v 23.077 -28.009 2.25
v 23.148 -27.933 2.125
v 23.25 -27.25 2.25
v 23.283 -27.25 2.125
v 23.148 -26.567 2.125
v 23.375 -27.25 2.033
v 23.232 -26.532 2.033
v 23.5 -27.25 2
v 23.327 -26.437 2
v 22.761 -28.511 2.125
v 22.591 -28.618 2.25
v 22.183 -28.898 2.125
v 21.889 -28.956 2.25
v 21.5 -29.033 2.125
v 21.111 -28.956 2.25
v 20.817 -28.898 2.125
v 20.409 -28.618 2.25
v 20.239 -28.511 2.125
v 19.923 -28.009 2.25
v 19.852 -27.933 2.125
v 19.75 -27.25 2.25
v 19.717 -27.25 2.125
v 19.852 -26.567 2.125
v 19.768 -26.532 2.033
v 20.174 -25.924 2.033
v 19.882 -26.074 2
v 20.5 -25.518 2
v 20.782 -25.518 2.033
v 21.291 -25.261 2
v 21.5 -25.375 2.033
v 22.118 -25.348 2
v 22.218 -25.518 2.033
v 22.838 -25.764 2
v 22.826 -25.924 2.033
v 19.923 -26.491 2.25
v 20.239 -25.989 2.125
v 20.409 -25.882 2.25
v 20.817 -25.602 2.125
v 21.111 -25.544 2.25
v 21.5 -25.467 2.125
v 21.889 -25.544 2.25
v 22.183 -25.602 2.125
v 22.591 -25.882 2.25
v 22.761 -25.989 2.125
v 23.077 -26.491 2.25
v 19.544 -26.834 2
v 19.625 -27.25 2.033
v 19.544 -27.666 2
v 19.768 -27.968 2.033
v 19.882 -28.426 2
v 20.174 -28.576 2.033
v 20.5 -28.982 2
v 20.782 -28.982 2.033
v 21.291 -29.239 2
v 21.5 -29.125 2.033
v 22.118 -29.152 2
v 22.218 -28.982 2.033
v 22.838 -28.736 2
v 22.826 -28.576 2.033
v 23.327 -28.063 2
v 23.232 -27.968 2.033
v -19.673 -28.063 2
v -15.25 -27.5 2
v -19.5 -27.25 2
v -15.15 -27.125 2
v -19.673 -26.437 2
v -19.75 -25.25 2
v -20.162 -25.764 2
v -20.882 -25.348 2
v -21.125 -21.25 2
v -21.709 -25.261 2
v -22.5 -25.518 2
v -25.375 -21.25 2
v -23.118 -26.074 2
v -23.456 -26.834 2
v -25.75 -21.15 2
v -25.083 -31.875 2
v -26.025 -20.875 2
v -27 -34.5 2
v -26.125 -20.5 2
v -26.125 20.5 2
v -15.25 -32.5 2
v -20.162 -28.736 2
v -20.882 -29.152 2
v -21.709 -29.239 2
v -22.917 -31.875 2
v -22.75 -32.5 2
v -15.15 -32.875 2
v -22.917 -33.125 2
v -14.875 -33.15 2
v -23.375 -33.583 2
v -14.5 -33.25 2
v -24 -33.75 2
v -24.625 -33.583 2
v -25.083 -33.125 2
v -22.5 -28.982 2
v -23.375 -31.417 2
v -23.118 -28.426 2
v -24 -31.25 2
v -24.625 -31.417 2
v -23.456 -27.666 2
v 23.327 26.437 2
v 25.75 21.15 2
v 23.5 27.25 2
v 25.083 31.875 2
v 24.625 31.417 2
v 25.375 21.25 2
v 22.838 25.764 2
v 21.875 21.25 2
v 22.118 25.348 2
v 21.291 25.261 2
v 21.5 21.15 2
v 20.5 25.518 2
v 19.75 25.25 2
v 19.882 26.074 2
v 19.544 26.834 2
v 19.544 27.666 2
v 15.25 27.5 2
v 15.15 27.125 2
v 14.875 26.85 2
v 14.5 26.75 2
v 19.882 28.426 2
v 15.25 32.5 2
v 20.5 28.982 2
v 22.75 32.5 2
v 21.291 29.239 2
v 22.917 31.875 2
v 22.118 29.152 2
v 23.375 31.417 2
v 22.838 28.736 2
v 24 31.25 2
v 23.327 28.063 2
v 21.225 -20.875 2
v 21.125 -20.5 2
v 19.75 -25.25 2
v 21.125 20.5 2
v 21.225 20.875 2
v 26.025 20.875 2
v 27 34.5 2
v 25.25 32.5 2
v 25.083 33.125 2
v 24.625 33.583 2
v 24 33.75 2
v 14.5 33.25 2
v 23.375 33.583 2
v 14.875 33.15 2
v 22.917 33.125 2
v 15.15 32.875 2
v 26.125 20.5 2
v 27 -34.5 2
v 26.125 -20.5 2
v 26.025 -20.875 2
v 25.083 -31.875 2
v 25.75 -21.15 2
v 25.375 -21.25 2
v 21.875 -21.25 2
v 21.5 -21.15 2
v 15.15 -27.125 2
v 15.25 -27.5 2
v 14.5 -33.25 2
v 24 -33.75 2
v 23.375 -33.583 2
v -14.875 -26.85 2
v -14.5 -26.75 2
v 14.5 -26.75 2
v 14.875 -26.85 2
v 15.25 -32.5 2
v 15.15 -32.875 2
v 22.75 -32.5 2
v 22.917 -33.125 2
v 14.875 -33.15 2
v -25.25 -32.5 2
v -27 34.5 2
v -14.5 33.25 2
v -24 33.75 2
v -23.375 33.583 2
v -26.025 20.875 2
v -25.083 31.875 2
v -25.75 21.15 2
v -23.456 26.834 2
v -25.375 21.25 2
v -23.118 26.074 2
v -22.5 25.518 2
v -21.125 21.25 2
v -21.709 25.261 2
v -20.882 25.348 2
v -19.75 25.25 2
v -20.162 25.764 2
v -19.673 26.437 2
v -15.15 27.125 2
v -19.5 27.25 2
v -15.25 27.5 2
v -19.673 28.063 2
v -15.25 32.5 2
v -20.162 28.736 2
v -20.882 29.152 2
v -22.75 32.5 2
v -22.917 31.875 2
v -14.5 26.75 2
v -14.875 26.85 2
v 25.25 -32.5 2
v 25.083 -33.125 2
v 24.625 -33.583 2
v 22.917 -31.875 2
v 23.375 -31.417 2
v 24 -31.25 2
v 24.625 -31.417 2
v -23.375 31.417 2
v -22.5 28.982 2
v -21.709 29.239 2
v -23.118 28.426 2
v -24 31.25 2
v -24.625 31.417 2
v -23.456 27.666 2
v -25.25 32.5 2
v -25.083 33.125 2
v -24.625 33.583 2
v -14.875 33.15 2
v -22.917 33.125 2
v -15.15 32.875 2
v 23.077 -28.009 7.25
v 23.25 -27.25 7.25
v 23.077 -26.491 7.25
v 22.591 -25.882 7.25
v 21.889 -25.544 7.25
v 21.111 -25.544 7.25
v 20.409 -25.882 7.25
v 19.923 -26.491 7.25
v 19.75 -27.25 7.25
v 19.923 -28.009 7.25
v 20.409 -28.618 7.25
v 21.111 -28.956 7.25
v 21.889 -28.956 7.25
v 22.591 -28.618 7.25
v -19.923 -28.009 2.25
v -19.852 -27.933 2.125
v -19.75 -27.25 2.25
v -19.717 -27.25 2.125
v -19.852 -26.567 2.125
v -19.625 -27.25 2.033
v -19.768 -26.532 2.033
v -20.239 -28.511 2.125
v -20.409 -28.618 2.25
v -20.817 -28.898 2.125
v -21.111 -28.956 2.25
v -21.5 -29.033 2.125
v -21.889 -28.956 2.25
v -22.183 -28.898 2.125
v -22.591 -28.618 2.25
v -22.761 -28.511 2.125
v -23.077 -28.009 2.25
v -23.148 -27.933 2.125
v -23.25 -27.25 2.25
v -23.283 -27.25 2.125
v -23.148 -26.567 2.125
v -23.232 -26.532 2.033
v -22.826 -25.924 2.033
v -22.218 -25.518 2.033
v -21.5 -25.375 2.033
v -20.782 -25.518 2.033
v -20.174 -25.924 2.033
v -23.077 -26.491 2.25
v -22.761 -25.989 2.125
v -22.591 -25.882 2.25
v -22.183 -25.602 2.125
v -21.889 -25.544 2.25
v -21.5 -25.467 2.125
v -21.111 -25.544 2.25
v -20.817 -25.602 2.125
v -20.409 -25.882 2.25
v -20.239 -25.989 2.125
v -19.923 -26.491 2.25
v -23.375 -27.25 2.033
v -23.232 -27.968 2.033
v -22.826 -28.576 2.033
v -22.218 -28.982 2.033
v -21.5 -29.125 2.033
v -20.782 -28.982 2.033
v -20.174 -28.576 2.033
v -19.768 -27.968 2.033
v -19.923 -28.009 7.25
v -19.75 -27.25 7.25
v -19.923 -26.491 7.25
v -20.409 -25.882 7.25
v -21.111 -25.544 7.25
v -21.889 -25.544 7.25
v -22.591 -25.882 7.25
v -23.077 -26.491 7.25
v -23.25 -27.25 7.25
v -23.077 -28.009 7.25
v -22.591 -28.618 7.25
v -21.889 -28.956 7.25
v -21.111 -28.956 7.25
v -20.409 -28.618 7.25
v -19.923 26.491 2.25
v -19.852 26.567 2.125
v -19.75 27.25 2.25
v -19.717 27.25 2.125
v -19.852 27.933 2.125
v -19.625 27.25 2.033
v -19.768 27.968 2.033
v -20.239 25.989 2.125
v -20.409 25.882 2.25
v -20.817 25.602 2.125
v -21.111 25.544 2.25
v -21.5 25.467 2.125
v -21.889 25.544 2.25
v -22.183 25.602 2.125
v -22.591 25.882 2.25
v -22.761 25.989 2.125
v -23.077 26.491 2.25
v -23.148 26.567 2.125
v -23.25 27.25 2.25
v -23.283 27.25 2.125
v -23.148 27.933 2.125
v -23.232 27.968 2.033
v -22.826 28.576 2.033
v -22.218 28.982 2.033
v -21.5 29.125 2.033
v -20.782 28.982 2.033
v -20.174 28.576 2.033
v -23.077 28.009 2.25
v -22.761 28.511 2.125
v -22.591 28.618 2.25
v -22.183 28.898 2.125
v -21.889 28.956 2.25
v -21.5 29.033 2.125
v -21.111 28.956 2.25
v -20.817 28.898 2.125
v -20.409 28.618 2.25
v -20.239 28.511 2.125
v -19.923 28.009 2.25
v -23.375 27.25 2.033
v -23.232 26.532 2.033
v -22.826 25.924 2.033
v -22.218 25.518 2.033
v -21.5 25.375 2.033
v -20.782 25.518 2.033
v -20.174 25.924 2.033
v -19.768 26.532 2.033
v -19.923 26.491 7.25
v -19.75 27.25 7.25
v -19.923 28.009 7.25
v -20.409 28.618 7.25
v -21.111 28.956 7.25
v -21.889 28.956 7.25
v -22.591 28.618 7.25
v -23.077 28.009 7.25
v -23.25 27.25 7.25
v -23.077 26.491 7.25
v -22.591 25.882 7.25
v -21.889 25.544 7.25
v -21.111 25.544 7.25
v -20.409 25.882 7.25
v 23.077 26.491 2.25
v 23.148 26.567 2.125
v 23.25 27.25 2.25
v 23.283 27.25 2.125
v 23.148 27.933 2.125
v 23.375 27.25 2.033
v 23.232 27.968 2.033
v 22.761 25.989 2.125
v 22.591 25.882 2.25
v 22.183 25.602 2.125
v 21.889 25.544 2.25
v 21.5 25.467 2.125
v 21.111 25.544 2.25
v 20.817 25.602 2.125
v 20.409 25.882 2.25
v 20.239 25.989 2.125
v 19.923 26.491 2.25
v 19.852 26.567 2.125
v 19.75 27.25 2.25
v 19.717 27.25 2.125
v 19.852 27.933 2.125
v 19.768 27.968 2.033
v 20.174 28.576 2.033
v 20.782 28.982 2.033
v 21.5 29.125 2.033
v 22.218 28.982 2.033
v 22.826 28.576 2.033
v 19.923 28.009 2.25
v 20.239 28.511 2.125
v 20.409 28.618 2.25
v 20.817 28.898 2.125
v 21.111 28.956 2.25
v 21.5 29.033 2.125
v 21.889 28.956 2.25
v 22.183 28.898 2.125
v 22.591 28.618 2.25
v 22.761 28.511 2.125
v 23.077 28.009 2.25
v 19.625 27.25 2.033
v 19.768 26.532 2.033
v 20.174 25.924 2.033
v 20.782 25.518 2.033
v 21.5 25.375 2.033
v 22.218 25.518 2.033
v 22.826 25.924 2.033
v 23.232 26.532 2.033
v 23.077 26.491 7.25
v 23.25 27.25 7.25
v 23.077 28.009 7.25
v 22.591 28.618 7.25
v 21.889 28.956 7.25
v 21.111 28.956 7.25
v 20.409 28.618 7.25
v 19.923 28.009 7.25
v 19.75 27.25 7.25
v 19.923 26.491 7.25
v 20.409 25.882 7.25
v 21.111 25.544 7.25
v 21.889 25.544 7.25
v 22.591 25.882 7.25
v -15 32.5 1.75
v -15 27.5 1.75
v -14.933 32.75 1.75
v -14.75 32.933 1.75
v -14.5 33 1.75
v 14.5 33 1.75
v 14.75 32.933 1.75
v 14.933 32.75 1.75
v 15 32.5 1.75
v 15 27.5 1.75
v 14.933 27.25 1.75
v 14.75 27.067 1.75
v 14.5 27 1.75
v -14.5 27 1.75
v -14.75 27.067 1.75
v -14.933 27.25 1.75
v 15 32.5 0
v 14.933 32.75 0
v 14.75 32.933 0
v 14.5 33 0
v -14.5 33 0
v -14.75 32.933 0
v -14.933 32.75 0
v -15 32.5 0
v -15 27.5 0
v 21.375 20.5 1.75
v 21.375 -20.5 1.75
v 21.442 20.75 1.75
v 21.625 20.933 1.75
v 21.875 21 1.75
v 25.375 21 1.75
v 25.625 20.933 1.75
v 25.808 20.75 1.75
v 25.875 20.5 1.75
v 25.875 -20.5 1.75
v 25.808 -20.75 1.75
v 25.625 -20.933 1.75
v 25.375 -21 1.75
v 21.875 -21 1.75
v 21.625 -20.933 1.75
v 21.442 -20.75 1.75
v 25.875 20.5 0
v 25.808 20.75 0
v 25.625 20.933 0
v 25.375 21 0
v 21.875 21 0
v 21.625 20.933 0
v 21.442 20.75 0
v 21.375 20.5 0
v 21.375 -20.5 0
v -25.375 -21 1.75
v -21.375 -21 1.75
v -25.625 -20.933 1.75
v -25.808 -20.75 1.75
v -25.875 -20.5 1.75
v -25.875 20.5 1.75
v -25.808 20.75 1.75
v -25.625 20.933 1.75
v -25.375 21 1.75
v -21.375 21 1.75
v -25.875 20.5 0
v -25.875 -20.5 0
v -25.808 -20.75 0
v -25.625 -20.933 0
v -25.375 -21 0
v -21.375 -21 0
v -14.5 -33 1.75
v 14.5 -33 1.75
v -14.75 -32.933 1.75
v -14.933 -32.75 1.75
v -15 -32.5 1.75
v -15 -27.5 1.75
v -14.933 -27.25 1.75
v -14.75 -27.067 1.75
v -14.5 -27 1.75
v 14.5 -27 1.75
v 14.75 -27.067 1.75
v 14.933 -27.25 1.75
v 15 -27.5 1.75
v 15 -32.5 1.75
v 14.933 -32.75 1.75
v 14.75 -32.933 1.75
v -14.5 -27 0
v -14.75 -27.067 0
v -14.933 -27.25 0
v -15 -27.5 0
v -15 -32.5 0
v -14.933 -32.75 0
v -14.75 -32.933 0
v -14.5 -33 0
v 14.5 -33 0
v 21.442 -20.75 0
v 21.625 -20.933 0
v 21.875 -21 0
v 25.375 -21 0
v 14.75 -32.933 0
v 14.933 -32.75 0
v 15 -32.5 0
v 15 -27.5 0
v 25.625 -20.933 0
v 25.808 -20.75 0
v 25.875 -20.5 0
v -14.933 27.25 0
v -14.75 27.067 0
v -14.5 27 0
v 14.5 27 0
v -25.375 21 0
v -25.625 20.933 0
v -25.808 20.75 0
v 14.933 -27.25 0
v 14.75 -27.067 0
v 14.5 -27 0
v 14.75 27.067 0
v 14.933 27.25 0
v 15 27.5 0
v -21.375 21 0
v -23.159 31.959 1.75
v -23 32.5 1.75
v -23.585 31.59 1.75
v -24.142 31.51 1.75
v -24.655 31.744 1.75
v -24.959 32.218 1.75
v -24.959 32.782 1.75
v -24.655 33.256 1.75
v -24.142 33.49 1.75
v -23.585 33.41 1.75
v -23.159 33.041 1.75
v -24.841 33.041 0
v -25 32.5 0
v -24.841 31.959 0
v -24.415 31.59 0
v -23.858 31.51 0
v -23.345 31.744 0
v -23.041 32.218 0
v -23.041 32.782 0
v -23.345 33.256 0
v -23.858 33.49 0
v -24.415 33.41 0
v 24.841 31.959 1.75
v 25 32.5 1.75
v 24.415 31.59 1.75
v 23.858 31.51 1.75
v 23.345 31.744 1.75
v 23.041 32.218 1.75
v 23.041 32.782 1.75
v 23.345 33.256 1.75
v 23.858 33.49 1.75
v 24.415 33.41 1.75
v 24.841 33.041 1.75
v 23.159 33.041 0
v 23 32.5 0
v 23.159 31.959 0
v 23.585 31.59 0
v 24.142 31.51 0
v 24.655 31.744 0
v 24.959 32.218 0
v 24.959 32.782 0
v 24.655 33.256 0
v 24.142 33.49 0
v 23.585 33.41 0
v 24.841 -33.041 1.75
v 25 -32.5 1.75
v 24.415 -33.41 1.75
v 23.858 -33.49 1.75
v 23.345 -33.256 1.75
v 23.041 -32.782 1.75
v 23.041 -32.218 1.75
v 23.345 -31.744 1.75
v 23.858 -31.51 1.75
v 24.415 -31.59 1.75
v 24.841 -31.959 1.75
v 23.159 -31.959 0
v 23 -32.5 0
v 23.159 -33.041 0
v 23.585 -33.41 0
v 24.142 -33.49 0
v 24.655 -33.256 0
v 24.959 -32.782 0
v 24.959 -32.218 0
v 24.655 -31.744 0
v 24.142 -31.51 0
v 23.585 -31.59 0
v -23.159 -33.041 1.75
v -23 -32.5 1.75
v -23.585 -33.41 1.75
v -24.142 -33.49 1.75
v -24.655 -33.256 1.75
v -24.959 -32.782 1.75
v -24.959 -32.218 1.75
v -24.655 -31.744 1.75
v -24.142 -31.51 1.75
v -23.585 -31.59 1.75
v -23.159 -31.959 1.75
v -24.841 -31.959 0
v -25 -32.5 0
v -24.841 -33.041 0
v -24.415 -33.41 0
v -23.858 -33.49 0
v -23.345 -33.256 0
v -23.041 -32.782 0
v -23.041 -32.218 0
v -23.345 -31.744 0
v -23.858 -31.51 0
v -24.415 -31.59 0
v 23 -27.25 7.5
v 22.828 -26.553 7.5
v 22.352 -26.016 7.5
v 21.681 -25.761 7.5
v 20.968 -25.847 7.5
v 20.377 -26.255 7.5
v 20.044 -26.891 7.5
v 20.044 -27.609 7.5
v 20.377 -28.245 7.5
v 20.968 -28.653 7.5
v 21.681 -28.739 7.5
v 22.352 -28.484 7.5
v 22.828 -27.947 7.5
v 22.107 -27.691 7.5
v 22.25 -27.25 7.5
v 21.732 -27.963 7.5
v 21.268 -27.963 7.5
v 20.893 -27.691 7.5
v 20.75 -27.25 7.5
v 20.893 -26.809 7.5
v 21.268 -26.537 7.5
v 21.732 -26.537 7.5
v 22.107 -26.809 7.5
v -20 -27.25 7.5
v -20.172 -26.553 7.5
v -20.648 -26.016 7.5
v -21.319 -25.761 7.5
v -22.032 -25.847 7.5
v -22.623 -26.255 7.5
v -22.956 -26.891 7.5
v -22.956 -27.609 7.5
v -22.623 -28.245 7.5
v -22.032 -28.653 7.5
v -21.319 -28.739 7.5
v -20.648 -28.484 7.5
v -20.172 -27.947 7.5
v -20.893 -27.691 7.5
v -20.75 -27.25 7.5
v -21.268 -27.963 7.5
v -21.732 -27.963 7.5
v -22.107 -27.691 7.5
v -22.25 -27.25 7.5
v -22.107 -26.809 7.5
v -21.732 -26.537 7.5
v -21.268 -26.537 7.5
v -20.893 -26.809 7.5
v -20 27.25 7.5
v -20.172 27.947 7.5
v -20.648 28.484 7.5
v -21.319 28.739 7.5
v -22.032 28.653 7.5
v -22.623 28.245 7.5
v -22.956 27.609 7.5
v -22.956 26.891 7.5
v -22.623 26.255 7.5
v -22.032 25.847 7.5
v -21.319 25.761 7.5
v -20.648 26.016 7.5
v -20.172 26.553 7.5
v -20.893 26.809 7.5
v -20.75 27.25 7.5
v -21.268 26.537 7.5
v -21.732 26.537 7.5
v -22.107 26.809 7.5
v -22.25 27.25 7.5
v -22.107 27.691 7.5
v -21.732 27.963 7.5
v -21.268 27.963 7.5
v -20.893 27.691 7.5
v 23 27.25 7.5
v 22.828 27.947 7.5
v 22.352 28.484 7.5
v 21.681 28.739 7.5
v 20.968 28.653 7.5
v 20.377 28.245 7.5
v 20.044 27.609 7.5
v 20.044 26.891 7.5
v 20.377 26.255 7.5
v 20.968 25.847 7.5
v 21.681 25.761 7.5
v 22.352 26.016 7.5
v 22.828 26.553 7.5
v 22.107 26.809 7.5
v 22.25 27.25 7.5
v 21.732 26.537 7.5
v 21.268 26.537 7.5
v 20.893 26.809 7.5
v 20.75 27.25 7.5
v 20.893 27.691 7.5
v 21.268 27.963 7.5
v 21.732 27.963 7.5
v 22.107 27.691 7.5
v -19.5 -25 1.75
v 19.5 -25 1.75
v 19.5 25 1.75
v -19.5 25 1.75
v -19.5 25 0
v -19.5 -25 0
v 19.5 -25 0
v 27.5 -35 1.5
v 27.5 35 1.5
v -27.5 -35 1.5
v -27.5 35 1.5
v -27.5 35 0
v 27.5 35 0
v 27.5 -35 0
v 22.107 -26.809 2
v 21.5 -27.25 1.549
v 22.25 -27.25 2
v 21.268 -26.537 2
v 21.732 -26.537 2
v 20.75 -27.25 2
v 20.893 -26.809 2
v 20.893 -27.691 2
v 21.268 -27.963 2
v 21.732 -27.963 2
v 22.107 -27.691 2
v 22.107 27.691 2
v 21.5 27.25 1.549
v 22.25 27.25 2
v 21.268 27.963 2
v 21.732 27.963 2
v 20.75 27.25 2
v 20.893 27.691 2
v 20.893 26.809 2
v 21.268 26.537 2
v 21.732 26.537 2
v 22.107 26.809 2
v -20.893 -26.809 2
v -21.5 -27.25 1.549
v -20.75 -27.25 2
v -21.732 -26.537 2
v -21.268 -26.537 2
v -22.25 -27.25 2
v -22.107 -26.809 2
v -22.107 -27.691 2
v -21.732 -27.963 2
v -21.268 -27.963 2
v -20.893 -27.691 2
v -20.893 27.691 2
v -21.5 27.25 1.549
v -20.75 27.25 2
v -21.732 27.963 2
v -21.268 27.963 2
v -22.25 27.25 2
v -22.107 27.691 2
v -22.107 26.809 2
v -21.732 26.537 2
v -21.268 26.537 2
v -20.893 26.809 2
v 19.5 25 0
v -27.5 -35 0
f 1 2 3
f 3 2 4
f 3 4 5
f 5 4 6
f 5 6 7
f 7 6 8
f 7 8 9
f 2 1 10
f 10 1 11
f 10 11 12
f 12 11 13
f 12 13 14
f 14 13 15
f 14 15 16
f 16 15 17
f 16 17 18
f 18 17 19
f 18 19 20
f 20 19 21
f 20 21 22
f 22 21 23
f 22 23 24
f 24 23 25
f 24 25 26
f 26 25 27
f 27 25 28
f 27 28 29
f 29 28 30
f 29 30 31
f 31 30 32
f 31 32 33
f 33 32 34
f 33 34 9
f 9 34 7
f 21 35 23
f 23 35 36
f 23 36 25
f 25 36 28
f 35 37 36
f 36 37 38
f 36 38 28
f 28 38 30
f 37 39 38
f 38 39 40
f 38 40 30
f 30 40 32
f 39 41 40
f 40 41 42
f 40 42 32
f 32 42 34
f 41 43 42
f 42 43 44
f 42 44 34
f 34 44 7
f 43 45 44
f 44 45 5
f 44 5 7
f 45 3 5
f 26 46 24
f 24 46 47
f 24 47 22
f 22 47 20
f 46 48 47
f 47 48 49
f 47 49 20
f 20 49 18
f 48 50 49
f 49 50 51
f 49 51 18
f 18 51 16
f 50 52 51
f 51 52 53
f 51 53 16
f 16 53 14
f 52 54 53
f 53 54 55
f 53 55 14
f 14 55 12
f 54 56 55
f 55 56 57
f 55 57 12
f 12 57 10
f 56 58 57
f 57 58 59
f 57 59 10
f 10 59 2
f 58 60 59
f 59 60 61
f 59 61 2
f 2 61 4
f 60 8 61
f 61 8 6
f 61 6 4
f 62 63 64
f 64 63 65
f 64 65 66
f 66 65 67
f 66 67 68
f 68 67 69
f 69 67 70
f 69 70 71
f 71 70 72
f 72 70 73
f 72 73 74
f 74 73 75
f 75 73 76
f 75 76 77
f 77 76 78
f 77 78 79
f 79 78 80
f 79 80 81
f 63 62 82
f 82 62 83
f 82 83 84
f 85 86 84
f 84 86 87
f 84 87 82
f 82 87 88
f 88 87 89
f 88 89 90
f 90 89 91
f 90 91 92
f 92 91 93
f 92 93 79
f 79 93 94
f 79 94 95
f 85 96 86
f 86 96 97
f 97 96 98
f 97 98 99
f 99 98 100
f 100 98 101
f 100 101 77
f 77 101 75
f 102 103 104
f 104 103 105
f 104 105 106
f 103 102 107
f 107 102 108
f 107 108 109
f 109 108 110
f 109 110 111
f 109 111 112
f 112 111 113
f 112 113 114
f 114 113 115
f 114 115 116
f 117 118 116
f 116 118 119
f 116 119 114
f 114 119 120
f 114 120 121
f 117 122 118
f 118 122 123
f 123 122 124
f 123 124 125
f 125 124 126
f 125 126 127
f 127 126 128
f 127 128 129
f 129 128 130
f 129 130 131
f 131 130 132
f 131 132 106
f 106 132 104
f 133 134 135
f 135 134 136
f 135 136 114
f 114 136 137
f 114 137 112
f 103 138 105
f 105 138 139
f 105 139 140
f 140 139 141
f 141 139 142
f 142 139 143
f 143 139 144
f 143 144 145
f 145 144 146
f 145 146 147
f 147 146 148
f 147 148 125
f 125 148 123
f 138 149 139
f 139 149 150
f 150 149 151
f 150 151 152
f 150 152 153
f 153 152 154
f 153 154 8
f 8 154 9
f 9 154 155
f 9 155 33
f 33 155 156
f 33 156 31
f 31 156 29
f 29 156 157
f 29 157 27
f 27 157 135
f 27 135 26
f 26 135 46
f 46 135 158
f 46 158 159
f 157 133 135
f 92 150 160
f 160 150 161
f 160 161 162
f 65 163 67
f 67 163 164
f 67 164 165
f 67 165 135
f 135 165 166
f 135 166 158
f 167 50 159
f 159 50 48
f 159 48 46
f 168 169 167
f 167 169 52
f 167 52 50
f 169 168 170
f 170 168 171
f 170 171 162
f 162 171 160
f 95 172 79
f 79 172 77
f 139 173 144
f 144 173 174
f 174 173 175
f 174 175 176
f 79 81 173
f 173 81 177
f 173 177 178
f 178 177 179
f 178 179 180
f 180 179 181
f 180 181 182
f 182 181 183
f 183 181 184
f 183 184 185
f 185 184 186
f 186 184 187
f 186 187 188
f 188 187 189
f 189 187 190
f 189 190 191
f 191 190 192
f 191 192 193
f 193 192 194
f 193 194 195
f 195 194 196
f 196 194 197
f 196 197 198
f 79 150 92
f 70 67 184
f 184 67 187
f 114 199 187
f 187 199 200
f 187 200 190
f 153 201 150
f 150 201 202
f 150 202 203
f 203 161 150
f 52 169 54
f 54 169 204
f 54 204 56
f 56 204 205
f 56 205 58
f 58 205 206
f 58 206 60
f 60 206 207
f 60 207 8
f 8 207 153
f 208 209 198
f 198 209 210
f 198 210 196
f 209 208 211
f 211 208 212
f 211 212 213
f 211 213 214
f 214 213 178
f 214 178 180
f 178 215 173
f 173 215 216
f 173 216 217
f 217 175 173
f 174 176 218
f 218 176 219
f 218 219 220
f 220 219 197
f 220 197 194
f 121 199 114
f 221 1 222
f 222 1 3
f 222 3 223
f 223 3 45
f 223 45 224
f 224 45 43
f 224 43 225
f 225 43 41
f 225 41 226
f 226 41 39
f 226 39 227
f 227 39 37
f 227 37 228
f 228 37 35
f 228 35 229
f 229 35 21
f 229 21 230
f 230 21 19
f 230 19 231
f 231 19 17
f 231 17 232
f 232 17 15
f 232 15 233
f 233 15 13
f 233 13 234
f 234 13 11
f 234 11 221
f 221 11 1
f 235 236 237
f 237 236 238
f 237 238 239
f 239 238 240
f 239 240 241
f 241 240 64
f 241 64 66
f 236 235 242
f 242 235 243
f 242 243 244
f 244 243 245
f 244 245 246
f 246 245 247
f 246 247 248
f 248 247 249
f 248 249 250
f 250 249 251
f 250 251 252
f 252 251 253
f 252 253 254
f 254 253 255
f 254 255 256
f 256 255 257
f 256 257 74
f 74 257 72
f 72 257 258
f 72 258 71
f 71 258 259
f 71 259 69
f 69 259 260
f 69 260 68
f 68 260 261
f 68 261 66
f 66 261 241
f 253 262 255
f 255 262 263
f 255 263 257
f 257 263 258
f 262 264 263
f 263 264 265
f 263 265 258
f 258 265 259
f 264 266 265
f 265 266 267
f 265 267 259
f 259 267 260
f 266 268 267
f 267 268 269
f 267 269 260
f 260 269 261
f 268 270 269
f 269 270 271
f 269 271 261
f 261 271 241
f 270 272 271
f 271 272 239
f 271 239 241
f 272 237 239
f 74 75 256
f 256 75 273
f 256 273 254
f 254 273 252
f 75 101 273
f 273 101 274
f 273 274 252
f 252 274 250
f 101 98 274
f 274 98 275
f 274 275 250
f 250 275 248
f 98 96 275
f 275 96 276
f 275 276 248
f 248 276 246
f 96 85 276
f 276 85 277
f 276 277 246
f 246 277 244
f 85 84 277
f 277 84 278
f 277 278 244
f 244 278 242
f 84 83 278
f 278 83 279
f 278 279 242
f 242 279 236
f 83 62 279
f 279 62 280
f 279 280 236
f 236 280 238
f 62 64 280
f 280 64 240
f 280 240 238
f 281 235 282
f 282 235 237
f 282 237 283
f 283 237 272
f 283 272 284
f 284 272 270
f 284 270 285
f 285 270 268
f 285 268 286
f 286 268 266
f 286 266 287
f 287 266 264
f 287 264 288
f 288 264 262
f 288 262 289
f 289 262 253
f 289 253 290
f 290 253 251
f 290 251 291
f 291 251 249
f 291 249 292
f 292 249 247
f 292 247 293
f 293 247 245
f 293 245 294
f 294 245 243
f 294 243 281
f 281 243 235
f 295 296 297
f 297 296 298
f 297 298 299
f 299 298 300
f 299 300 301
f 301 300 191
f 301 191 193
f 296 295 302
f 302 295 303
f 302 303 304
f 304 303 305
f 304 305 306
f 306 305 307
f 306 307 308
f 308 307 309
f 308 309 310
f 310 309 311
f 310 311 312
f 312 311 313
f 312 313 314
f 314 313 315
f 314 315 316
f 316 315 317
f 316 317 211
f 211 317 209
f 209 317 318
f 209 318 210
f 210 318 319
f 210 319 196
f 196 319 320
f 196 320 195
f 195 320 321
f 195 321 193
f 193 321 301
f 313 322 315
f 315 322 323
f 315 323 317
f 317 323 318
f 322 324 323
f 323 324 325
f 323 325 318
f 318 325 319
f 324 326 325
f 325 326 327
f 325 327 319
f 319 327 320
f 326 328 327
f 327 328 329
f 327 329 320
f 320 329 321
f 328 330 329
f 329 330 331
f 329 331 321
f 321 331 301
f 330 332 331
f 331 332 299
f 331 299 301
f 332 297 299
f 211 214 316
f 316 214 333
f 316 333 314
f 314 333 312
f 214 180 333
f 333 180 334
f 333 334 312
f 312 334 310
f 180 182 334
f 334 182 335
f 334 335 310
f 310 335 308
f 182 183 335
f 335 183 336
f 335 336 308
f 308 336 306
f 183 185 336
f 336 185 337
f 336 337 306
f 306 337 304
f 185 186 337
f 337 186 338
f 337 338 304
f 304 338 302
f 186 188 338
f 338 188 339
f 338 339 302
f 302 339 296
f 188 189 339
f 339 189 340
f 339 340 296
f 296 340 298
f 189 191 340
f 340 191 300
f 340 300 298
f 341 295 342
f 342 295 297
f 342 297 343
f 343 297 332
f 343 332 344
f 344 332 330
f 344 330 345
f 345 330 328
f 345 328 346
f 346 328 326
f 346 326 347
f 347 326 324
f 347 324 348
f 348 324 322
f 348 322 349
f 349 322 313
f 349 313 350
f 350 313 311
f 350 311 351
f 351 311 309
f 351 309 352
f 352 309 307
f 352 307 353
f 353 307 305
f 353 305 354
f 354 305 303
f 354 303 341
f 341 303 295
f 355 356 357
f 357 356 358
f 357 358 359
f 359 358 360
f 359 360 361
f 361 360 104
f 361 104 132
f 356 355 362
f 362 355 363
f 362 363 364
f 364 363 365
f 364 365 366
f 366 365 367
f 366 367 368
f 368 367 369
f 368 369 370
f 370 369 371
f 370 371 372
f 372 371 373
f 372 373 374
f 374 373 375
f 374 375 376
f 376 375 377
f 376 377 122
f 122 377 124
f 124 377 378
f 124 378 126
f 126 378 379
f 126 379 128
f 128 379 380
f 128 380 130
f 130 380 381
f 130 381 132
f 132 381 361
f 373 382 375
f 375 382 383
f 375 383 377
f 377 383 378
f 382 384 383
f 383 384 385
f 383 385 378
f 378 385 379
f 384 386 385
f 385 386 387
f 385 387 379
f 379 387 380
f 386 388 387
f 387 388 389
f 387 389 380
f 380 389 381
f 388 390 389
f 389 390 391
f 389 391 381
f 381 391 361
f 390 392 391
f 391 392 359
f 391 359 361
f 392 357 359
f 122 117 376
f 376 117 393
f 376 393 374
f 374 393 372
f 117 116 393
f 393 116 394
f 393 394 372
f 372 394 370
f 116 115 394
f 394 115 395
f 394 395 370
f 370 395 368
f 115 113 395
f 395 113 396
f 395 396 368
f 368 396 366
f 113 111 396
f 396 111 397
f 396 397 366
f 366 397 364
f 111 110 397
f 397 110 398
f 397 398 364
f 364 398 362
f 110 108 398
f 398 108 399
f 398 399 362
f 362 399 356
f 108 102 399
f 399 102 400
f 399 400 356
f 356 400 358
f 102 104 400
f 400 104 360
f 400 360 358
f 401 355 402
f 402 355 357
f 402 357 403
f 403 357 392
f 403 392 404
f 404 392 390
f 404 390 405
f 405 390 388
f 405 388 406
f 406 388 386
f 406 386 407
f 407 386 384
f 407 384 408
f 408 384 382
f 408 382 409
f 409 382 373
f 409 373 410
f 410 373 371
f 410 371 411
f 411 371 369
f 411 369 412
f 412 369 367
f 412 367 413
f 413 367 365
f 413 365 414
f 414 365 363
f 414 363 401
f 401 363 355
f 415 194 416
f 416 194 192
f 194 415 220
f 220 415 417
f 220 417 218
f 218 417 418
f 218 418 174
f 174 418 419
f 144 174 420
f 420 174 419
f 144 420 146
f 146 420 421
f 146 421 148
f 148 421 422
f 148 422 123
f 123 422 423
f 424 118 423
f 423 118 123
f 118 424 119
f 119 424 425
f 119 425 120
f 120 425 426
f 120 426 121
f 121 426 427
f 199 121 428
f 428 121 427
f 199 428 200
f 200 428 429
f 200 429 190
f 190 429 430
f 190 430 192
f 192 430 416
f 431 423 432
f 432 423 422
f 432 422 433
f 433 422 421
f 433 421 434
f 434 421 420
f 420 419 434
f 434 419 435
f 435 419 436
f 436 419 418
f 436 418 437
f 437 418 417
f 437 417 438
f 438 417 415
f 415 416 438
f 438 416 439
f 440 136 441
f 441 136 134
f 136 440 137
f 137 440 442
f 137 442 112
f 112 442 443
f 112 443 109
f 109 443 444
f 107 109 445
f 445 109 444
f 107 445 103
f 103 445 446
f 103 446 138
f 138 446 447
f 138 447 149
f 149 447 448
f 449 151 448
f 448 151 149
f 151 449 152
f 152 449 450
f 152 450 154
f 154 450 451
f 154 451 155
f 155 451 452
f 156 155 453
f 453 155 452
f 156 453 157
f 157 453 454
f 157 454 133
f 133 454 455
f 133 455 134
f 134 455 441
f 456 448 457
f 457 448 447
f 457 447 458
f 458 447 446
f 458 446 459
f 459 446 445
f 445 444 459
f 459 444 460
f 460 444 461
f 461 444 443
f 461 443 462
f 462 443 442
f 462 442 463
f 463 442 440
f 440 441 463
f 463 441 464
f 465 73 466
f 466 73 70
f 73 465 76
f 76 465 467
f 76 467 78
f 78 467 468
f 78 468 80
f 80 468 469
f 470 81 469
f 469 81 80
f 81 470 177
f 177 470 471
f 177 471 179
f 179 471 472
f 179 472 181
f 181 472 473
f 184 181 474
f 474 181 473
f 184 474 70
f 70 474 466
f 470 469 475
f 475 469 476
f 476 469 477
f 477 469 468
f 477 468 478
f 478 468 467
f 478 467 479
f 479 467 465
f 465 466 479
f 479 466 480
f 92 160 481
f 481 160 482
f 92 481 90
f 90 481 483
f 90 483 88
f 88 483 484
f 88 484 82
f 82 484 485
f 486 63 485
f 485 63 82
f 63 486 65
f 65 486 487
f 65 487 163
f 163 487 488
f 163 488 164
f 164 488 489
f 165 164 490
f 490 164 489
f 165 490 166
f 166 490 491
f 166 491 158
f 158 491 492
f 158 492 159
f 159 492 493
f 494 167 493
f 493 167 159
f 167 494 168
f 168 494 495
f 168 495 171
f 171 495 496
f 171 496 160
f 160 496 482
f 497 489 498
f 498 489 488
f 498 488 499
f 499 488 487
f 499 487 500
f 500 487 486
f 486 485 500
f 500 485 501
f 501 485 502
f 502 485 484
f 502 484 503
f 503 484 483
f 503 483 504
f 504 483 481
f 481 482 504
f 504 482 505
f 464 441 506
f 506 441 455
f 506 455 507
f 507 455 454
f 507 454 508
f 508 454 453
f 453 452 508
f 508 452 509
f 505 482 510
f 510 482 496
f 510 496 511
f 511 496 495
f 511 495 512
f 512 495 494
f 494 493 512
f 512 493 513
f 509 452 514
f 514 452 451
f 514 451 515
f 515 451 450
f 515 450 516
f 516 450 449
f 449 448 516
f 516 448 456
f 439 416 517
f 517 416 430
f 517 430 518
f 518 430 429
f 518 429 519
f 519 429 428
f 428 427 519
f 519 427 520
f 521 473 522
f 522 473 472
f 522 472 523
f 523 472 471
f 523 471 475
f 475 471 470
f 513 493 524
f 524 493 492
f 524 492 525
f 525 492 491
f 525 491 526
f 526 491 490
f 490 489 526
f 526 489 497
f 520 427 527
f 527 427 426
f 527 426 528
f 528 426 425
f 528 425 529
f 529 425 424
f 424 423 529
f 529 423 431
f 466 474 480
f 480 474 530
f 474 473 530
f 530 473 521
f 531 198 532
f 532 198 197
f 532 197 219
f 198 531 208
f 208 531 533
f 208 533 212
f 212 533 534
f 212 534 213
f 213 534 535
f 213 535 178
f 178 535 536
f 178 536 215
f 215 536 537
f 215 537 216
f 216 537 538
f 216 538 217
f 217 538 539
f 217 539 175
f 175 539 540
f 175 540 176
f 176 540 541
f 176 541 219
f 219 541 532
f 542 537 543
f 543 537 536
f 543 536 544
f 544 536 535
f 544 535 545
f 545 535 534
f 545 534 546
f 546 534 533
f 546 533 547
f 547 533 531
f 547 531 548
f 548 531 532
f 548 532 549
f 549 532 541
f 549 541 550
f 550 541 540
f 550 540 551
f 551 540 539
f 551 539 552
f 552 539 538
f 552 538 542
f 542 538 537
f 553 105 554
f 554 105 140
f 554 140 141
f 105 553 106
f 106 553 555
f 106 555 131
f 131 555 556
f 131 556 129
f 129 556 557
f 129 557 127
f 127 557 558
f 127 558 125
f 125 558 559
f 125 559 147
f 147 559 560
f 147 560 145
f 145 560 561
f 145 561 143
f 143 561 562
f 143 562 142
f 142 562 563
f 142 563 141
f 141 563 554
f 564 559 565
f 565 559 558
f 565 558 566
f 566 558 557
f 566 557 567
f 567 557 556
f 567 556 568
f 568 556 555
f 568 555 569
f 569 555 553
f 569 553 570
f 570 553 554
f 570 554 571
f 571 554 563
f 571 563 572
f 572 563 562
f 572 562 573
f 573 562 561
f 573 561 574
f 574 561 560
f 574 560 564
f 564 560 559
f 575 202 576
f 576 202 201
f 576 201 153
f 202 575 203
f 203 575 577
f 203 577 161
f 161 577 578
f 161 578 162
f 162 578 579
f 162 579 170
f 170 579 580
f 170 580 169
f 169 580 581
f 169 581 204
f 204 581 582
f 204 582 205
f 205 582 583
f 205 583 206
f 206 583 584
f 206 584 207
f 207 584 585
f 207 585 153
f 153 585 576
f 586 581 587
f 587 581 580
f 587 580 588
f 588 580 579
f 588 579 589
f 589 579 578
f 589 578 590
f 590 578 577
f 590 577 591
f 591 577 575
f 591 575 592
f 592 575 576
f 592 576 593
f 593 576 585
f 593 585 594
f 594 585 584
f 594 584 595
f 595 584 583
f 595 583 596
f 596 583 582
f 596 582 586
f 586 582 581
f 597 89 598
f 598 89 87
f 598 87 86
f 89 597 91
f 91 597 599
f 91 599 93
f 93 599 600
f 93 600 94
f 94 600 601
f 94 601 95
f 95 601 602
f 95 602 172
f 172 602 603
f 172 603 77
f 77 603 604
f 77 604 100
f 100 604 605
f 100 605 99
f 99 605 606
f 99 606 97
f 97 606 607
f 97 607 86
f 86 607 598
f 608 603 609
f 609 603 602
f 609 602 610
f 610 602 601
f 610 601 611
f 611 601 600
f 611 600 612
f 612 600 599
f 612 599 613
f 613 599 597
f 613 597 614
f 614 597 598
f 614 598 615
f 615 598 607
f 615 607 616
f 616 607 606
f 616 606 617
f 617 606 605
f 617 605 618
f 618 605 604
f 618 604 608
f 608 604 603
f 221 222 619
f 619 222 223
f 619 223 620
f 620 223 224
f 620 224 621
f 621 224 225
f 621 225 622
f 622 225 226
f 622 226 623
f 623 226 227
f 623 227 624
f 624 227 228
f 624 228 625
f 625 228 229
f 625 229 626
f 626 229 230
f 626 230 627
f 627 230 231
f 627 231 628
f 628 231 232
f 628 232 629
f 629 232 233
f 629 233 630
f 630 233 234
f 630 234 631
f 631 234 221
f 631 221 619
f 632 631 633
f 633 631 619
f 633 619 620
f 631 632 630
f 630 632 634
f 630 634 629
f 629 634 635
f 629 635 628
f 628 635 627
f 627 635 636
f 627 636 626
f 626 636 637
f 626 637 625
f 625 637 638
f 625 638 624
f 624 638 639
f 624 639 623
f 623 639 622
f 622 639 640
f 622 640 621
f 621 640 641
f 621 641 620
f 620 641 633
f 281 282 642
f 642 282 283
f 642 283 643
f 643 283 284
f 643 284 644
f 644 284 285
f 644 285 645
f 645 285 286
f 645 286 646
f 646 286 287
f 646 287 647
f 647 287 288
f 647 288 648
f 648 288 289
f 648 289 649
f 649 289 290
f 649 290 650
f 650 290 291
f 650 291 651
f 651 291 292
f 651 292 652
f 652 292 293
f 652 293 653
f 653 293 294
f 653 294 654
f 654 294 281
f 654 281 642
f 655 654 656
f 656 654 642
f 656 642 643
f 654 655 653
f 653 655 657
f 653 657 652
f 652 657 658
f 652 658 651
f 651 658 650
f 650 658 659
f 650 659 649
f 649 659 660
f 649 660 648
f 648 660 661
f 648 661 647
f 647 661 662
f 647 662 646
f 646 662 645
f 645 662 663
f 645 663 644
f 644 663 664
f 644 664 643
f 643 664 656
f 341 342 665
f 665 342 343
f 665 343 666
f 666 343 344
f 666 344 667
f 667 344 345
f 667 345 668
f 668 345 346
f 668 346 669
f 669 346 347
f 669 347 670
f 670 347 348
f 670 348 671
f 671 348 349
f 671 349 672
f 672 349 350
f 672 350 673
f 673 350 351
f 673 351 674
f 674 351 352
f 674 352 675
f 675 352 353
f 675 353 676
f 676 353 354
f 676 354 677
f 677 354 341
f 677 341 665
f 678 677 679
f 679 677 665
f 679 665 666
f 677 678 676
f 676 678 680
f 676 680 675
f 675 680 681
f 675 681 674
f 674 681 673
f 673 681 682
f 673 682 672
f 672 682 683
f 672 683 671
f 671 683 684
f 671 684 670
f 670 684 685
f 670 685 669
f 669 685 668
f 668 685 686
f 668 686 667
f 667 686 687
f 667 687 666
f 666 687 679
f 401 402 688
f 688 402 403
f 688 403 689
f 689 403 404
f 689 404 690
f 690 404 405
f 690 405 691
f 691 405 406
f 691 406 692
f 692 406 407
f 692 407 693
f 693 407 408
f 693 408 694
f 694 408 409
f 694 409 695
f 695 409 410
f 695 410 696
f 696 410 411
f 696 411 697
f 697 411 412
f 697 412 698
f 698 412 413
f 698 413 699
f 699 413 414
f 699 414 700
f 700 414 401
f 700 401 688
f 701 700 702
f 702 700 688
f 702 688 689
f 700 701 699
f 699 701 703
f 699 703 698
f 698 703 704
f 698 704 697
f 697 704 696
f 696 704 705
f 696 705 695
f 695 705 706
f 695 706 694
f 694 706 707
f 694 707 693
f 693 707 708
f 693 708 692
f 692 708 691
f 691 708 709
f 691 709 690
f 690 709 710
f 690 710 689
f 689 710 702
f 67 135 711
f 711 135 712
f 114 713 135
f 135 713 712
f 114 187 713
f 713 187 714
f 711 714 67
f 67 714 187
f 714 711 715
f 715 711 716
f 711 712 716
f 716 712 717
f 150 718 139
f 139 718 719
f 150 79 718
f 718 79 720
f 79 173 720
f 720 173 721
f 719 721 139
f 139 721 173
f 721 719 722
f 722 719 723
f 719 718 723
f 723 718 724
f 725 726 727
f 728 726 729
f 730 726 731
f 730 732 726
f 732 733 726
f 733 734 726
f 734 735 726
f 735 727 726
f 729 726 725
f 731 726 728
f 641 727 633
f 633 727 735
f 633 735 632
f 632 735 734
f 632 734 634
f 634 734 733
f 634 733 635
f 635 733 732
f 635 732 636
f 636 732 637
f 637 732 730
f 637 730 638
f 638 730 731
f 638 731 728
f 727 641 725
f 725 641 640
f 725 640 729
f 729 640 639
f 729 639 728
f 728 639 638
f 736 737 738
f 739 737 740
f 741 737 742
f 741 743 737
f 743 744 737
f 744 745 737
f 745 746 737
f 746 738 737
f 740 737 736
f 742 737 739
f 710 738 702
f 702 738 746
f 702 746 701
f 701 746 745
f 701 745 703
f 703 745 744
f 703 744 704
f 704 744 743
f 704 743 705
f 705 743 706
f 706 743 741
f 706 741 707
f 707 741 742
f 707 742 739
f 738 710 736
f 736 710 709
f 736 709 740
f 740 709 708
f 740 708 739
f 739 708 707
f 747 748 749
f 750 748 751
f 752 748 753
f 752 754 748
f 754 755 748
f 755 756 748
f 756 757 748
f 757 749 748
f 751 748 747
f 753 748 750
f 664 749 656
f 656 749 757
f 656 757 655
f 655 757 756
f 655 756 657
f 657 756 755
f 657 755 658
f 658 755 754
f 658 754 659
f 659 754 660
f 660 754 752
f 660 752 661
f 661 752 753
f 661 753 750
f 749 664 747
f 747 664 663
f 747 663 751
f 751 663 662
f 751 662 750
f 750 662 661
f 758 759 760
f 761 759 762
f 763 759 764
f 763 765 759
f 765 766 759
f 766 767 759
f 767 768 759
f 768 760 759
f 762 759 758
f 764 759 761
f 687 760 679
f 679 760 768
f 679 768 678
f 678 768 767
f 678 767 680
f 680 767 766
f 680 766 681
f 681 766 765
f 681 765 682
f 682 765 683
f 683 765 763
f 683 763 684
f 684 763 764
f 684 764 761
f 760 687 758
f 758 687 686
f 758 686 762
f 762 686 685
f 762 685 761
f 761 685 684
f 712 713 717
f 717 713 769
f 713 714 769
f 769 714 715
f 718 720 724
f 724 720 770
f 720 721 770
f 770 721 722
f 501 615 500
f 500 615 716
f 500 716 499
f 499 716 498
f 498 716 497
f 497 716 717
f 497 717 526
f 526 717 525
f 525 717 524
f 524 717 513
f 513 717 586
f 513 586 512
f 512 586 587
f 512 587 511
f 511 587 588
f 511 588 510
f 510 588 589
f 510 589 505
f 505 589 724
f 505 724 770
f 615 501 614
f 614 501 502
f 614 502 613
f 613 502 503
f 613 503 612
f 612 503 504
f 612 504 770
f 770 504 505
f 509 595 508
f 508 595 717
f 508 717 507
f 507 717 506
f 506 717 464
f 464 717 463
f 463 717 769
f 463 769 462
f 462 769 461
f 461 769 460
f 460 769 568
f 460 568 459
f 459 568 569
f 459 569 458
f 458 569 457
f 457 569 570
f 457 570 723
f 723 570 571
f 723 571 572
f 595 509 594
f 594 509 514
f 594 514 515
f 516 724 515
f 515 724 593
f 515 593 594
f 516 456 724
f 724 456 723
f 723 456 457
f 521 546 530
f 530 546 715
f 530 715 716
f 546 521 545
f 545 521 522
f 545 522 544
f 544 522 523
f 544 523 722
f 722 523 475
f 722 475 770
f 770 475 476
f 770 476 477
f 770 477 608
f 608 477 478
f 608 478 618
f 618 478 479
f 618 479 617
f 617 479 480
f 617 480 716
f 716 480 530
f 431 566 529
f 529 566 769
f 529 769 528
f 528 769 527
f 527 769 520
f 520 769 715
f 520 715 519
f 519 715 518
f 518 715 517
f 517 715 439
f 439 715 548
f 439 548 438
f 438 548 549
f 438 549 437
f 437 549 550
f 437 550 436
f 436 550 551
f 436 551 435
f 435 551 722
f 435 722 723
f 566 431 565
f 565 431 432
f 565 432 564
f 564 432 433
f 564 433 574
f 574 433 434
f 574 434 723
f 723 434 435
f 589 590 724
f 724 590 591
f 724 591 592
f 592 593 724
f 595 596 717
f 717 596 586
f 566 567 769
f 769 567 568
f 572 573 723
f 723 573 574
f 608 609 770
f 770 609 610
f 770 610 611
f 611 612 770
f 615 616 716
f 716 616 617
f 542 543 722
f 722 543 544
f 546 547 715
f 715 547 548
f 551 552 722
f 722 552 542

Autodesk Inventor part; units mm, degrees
ref_plane "YZ Plane" through (0, 0, 0) normal (1, 0, 0) x (0, 1, 0)
ref_plane "XZ Plane" through (0, 0, 0) normal (0, 1, 0) x (-1, 0, 0)
ref_plane "XY Plane" through (0, 0, 0) normal (0, 0, 1) x (1, 0, 0)
sketch "Skizze1" plane through (0, 0, 0) normal (0, 0, 1) x (1, 0, 0)
  line L0 (27.5, -35) -> (-27.5, -35)
  line L1 (-27.5, -35) -> (-27.5, 35)
  line L2 (-27.5, 35) -> (27.5, 35)
  line L3 (27.5, 35) -> (27.5, -35)
  line L4 (27.5, -35) -> (-27.5, 35) construction
  line L5 (-27.5, -35) -> (27.5, 35) construction
  line L6 (-19.5, -25) -> (19.5, -25)
  line L7 (19.5, -25) -> (19.5, 25)
  line L8 (19.5, 25) -> (-19.5, 25)
  line L9 (-19.5, 25) -> (-19.5, -25)
  line L10 (-19.5, -25) -> (19.5, 25) construction
  line L11 (19.5, -25) -> (-19.5, 25) construction
  point P0 (0, 0)
  dimension "d0" = 55
  dimension "d1" = 70
  dimension "d32" = 39
  dimension "d33" = 50
extrude "Extrusion1" add sketch "Skizze1" along normal blind 2
sketch "Skizze2" plane through (0, 0, 2) normal (0, 0, 1) x (1, 0, 0)
  circle A0 centre (-21.5, 27.25) radius 1.75
  line L0 (0, -49) -> (0, 49) projected
  line L1 (-38.5, 0) -> (38.5, 0) projected
  circle A1 centre (-21.5, -27.25) radius 1.75
  circle A2 centre (21.5, 27.25) radius 1.75
  circle A3 centre (21.5, -27.25) radius 1.75
  point P0 (0, 0)
  dimension "d4" = 3.5
  dimension "d5" = 21.5
  dimension "d6" = 27.25
  dimension "d9" = 54.5
  dimension "d12" = 43
extrude "Extrusion2" add sketch "Skizze2" along normal blind 5.5
sketch "Skizze3" plane through (-21.5, 27.25, 7.5) normal (0, 0, 1) x (1, 0, 0)
  circle A0 centre (0, 0) radius 1.75 projected
  line L0 (-17, -27.25) -> (60, -27.25) projected
  line L1 (21.5, -76.25) -> (21.5, 21.75) projected
  point P0 (21.5, -27.25)
  point P1 (0, -54.5)
  point P2 (43, 0)
  point P3 (43, -54.5)
  dimension "d19" = 54.5
  dimension "d22" = 43
hole "Bohrung1" at (-21.5, 27.25, 7.5) at (-21.5, -27.25, 7.5) at (21.5, 27.25, 7.5) at (21.5, -27.25, 7.5) direction (0, 0, -1) diameter 1.5 depth 5.5 tip angle 118
sketch "Skizze4" plane through (0, 0, 2) normal (0, 0, 1) x (1, 0, 0)
  line L0 (0, -49) -> (0, 49) projected
  line L1 (-38.5, 0) -> (38.5, 0) projected
  point P0 (0, 0)
  point P1 (-24, 32.5)
  point P2 (-24, -32.5)
  point P3 (24, 32.5)
  point P4 (24, -32.5)
  dimension "d34" = 24
  dimension "d35" = 32.5
  dimension "d38" = 65
  dimension "d41" = 48
hole "Bohrung2" at (-24, 32.5, 2) at (-24, -32.5, 2) at (24, 32.5, 2) at (24, -32.5, 2) direction (0, 0, -1) diameter 2 depth 5.5 tip angle 118
chamfer "Fasen1" distance 0.5 angle 45 4 edges at (-27.5, 0, 2) (0, 35, 2) (27.5, 0, 2) (0, -35, 2)
chamfer "Fasen2" distance 0.25 angle 45 12 edges at (0, 25, 2) (-19.5, 0, 2) (0, -25, 2) (19.5, 0, 2) (19.75, 27.25, 7.5) (-23.25, 27.25, 7.5) (-23.25, -27.25, 7.5) (19.75, -27.25, 7.5) (-24, -31.5, 2) (24, -31.5, 2) (-24, 33.5, 2) (24, 33.5, 2)
sketch "Skizze5" plane through (0, 0, 2) normal (0, 0, 1) x (1, 0, 0)
  line L0 (-15, 33) -> (15, 33)
  line L1 (15, 33) -> (15, 27)
  line L2 (15, 27) -> (-15, 27)
  line L3 (-15, 27) -> (-15, 33)
  line L4 (-15, 33) -> (15, 27) construction
  line L5 (15, 33) -> (-15, 27) construction
  line L6 (-19.5, 25) -> (19.5, 25) projected
  line L7 (-38.5, 0) -> (38.5, 0) projected
  line L8 (0, -49) -> (0, 49) projected
  line L9 (-15, -33) -> (15, -33)
  line L10 (15, -33) -> (15, -27)
  line L11 (15, -27) -> (-15, -27)
  line L12 (-15, -27) -> (-15, -33)
  line L13 (25.875, -21) -> (21.375, -21)
  line L14 (21.375, -21) -> (21.375, 21)
  line L15 (21.375, 21) -> (25.875, 21)
  line L16 (25.875, 21) -> (25.875, -21)
  line L17 (25.875, -21) -> (21.375, 21) construction
  line L18 (21.375, -21) -> (25.875, 21) construction
  line L19 (27.5, -35) -> (27.5, 35) projected
  line L20 (-25.875, -21) -> (-21.375, -21)
  line L21 (-21.375, -21) -> (-21.375, 21)
  line L22 (-21.375, 21) -> (-25.875, 21)
  line L23 (-25.875, 21) -> (-25.875, -21)
  point P0 (0, 0)
  point P1 (0, 30)
  point P2 (23.625, 0)
  dimension "d57" = 5
  dimension "d58" = 30
  dimension "d59" = 6
  dimension "d60" = 3.875
  dimension "d61" = 4.5
  dimension "d62" = 42
extrude "Extrusion3" cut sketch "Skizze5" against normal through all
fillet "Rundung1" radius 0.5 14 edges at (15, 33, 1) (15, 27, 1) (25.875, 21, 1) (15, -27, 1) (-15, 33, 1) (-25.875, 21, 1) (21.375, 21, 1) (-15, 27, 1) (-25.875, -21, 1) (25.875, -21, 1) (15, -33, 1) (21.375, -21, 1) (-15, -27, 1) (-15, -33, 1)
chamfer "Fasen3" distance 0.25 angle 45 14 edges at (0, -33, 2) (-14.8536, -32.8536, 2) (-15, -30, 2) (-14.8536, -27.1464, 2) (0, -27, 2) (14.8536, -27.1464, 2) (15, -30, 2) (14.8536, -32.8536, 2) (-25.875, 0, 2) (-25.7286, 20.8536, 2) (-23.375, 21, 2) (-25.7286, -20.8536, 2) (-23.375, -21, 2) (-21.375, 0, 2)
chamfer "Fasen4" distance 0.25 angle 45 16 edges at (21.375, 0, 2) (21.5214, 20.8536, 2) (23.625, 21, 2) (25.7286, 20.8536, 2) (25.875, 0, 2) (25.7286, -20.8536, 2) (23.625, -21, 2) (21.5214, -20.8536, 2) (-15, 30, 2) (-14.8536, 32.8536, 2) (0, 33, 2) (14.8536, 32.8536, 2) (15, 30, 2) (14.8536, 27.1464, 2) (0, 27, 2) (-14.8536, 27.1464, 2)
fillet "Rundung2" radius 0.25 4 edges at (19.75, 27.25, 2) (-23.25, 27.25, 2) (-23.25, -27.25, 2) (19.75, -27.25, 2)
properties part number "Base"
